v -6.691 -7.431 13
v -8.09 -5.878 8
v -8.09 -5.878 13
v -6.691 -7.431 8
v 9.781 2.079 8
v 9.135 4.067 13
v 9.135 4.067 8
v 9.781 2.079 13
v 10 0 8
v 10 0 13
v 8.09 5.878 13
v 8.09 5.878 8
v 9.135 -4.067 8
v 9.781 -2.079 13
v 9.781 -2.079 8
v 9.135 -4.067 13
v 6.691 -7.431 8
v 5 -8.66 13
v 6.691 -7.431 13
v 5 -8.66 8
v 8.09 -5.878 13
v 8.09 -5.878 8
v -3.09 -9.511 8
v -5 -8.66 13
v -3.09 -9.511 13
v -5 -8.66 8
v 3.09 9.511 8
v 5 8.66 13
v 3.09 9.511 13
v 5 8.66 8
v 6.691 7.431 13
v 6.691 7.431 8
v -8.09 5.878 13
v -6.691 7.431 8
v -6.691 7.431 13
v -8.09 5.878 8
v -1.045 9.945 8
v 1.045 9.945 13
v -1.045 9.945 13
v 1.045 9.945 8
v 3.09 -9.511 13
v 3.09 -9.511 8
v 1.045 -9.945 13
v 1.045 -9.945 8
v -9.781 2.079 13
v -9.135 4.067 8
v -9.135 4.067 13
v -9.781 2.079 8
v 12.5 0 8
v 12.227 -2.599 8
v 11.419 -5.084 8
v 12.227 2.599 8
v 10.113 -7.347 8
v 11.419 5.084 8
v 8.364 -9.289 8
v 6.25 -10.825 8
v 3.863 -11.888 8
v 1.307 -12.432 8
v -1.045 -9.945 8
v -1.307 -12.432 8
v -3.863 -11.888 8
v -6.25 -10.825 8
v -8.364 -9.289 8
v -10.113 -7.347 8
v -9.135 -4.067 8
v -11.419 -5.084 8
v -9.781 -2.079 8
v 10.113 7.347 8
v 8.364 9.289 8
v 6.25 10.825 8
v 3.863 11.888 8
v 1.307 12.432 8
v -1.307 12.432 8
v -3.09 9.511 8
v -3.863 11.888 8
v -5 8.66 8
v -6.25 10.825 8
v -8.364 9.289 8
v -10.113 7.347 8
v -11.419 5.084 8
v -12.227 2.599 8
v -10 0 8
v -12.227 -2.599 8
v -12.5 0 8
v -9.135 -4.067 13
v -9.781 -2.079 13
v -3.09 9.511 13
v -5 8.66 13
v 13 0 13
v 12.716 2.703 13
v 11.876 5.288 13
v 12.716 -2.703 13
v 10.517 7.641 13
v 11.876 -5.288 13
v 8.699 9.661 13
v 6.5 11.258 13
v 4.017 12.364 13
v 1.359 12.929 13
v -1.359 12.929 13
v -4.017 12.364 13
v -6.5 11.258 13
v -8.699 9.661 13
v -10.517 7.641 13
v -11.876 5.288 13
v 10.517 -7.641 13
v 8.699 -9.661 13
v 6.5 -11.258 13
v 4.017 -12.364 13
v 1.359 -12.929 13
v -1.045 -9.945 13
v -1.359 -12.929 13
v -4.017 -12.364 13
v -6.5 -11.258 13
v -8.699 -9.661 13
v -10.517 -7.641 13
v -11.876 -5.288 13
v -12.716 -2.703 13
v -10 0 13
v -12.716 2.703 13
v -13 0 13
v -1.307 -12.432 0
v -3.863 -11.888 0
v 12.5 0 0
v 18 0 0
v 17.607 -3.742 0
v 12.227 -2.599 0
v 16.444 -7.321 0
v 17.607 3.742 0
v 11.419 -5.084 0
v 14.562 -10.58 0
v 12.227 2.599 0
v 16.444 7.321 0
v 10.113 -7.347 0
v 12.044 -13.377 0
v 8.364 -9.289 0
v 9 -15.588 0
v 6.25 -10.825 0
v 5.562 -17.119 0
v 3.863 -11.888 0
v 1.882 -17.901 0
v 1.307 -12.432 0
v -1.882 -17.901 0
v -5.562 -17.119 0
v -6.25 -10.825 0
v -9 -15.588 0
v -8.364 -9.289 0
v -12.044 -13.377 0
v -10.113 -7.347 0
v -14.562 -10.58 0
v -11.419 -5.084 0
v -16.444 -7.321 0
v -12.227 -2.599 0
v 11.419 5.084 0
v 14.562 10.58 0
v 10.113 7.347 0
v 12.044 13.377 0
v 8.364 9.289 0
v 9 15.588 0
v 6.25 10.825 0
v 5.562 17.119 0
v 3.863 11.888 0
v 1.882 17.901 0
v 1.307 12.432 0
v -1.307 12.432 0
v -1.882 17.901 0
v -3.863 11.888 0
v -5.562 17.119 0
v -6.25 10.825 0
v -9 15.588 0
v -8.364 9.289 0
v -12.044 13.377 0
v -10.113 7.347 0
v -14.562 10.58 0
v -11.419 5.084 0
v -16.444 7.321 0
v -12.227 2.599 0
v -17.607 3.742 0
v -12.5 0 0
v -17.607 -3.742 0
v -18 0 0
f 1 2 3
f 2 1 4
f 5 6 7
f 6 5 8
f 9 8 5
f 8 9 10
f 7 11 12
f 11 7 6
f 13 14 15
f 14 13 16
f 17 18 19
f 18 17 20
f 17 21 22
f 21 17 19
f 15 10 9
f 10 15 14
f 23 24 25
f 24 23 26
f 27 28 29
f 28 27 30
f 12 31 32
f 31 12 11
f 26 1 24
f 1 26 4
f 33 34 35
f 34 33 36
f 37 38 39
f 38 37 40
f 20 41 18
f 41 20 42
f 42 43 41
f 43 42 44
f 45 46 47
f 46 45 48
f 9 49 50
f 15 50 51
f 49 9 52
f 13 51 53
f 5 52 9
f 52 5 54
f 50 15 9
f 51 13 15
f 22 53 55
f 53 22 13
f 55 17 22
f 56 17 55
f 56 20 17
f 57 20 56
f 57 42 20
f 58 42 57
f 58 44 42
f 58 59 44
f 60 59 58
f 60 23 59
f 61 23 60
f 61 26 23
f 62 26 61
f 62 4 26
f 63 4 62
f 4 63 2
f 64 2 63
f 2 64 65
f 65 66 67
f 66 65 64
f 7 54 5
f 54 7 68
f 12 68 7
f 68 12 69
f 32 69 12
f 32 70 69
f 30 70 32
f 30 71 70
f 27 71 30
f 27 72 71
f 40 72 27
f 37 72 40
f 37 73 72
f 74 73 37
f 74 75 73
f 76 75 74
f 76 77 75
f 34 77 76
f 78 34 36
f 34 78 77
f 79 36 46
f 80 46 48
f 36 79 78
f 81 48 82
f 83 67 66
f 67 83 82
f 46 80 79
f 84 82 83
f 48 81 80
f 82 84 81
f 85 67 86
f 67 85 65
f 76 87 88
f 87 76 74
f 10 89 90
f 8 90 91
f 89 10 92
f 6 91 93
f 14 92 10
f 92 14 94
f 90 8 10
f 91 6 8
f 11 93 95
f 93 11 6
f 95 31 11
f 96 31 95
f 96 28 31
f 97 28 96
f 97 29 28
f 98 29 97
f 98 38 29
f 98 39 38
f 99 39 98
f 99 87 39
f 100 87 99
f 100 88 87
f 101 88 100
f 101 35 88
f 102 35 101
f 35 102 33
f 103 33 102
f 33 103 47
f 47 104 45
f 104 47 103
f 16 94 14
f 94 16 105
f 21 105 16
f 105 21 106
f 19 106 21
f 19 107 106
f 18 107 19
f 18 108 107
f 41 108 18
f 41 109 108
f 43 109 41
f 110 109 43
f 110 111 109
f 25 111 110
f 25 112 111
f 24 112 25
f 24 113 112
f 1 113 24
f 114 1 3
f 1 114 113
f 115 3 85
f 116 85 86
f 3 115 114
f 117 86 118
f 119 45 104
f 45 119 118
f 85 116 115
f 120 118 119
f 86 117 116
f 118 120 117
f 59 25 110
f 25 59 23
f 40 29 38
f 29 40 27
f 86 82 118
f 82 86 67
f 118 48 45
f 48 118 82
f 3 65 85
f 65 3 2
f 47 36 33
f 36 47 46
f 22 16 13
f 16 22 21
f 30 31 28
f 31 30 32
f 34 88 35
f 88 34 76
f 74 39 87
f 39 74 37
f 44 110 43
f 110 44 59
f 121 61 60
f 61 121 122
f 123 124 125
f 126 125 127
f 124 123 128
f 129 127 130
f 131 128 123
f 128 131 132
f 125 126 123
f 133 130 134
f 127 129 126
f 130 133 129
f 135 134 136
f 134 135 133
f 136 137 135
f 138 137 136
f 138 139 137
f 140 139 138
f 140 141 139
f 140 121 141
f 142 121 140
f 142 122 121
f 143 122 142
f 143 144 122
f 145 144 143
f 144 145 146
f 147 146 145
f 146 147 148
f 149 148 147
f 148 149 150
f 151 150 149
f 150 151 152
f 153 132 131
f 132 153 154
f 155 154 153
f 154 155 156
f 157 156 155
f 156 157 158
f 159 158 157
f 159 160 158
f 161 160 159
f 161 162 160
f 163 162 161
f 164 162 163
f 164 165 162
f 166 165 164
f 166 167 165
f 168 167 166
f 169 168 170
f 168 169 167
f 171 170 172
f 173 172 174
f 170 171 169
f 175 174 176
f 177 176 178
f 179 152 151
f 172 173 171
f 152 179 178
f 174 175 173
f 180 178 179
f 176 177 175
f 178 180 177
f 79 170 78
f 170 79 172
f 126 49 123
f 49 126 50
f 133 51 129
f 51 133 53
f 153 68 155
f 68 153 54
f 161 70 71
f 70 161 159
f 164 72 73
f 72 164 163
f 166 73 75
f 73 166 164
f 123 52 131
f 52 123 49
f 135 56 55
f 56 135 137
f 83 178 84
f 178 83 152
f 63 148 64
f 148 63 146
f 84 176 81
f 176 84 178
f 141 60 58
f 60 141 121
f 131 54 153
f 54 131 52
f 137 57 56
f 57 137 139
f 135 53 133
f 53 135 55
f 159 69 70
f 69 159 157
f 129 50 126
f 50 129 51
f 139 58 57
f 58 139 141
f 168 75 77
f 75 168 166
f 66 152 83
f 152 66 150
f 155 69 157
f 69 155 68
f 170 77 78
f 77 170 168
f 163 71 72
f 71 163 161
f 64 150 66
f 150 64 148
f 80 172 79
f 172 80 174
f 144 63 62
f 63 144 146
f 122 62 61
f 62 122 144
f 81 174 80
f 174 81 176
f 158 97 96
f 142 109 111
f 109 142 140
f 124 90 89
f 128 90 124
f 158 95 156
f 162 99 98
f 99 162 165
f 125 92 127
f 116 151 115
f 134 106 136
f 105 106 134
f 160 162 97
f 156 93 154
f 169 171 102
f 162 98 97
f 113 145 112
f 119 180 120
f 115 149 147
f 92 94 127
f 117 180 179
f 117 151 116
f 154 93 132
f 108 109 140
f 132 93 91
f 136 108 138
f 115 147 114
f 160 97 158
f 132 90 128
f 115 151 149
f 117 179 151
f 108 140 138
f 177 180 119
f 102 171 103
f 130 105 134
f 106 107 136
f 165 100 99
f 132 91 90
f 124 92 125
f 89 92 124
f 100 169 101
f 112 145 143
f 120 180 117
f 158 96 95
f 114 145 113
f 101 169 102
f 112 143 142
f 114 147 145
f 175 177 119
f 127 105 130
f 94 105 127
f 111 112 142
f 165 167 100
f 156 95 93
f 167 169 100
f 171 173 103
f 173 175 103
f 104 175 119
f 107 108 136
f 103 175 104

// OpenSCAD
difference () {
  cylinder(h=13, r=18, r2=13);
  hole();
}

module hole() {
  translate([0,0,8]) {cylinder(h=5, r=20/2);}
  cylinder(h=8,r=25/2);
}
